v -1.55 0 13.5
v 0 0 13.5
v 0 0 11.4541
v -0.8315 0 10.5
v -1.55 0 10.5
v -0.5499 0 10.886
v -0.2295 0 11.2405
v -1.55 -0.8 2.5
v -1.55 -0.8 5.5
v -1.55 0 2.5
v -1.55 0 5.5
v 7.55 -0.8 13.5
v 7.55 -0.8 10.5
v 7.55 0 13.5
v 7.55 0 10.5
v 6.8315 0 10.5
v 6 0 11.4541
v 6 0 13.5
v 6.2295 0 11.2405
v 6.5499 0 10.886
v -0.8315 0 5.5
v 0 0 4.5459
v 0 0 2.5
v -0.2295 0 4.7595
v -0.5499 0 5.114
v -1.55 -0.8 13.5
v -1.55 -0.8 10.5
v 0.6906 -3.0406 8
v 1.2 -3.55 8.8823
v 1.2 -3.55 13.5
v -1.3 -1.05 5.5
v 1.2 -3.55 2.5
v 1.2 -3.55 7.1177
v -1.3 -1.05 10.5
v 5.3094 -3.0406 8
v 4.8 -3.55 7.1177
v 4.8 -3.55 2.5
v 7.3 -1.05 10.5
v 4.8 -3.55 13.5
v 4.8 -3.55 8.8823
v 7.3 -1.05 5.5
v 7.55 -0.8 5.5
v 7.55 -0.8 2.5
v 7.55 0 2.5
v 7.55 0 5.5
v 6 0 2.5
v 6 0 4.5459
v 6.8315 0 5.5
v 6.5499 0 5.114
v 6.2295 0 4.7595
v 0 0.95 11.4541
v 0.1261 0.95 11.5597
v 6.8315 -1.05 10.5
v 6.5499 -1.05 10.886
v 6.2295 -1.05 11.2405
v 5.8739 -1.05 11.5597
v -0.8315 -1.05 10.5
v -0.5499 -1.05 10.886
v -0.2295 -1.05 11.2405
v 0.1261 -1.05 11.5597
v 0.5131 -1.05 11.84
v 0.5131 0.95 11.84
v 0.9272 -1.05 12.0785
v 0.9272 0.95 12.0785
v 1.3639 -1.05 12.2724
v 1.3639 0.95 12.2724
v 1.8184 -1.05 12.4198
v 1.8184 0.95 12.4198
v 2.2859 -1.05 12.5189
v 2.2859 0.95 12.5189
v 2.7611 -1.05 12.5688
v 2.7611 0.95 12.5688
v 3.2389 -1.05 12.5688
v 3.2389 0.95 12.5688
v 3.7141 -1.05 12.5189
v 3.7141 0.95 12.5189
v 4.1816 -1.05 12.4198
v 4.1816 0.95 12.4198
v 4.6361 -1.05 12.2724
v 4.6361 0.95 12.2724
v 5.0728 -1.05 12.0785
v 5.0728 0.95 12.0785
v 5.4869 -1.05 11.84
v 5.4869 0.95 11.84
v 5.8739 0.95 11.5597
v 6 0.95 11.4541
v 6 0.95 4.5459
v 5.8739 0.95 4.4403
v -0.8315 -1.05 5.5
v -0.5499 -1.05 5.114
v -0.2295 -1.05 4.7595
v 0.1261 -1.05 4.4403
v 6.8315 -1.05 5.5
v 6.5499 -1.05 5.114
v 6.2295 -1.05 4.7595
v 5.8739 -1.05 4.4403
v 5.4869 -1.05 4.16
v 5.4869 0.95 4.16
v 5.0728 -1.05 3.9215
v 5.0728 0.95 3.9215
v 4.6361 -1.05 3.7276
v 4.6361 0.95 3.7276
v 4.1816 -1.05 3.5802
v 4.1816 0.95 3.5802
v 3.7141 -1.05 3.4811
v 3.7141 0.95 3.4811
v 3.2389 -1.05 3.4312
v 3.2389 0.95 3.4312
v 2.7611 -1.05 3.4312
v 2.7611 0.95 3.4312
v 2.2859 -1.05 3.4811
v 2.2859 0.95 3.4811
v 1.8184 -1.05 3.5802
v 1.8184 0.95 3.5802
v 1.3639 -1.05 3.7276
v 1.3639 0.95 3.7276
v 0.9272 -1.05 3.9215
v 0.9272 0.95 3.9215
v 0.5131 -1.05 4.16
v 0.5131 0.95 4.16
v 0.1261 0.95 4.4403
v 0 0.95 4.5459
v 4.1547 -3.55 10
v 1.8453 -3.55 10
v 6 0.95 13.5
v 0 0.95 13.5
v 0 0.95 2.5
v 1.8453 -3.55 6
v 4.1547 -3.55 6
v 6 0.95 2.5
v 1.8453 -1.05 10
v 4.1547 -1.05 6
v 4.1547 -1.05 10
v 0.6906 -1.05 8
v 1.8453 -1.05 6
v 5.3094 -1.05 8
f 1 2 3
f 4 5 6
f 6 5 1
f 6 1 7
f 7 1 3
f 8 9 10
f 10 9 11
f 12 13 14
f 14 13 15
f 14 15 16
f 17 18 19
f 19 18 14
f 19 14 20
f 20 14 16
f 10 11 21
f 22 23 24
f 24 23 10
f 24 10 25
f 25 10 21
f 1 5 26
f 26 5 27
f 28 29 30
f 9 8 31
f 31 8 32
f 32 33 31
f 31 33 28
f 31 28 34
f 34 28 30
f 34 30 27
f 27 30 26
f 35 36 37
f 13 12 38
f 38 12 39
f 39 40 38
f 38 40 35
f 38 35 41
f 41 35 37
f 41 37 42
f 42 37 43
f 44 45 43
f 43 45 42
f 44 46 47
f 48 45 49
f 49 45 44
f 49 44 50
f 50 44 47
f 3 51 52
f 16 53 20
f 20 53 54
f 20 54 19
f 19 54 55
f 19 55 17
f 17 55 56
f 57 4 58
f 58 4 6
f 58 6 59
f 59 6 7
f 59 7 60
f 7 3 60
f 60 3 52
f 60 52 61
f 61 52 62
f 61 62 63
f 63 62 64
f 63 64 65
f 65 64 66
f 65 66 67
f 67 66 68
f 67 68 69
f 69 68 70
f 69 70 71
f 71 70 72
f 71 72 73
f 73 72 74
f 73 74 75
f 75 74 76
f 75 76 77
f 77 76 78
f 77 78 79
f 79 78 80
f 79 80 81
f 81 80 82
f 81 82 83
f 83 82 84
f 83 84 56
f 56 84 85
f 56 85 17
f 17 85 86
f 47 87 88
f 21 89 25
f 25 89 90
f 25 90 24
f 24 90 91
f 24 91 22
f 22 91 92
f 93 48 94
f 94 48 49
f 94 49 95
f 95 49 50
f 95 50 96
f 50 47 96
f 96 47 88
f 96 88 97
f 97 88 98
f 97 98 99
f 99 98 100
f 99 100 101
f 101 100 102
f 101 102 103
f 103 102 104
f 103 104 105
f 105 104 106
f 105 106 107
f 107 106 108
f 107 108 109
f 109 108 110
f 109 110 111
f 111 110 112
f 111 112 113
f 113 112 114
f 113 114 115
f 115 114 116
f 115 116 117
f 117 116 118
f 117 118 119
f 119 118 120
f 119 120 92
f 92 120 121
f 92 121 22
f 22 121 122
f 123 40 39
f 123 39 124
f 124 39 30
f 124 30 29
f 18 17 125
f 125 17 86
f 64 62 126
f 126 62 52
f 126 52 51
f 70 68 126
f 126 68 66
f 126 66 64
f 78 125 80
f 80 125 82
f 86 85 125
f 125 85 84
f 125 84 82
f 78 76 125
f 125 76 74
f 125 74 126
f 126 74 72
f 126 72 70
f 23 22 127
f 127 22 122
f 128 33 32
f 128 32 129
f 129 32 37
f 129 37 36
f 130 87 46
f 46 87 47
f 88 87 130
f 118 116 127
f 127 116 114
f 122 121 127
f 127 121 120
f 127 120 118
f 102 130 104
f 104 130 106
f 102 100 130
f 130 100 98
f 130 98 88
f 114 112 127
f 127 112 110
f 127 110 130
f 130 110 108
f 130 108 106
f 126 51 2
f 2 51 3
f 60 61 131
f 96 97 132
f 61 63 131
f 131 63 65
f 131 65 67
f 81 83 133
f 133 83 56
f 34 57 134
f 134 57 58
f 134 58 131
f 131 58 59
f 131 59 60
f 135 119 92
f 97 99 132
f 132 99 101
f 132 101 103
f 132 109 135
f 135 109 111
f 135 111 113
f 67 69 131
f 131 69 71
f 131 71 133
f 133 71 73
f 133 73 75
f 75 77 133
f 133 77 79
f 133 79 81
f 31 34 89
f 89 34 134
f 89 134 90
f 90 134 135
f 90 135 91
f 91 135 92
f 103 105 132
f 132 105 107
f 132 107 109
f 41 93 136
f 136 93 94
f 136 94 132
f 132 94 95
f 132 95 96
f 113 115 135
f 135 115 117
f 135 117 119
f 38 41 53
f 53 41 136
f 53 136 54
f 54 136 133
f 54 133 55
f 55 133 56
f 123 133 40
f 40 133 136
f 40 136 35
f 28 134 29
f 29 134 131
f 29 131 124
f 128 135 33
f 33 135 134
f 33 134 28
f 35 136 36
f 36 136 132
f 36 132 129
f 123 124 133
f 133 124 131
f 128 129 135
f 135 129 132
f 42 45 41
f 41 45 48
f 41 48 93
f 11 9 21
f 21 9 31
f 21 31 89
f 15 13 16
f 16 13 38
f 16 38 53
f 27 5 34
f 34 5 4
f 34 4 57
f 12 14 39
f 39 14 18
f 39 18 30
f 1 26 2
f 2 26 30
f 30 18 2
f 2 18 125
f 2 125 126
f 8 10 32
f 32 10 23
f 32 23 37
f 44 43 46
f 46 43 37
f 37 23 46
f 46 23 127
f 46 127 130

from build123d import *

# Parameters (mm, degrees)
BOSS_EXTRUDE1_DEPTH = 16
SKETCH2_R           = 4.575
CUT_EXTRUDE1_DEPTH  = 2
CUT_EXTRUDE2_DEPTH  = 18.867638344
SKETCH5_W           = 9.1
SKETCH5_H           = 5
CUT_EXTRUDE4_DEPTH  = 18.867638344
SKETCH6_W           = 9.1
SKETCH6_H           = 2.5
CUT_EXTRUDE5_DEPTH  = 19.255204737


with BuildPart() as part:
    # Sketch1 → Boss-Extrude1 (new body)
    with BuildSketch(Plane.XY):
        Polygon((0, 0), (0, 0.95), (6, 0.95), (6, 0), (7.55, 0), (7.55, -0.8), (4.8, -3.55), (1.2, -3.55), (-1.55, -0.8), (-1.55, 0), align=None)
    extrude(amount=BOSS_EXTRUDE1_DEPTH)

    # Sketch2 → Cut-Extrude1 (cut)
    with BuildSketch(Plane(origin=(0, 0.95, 0), x_dir=(1, 0, 0), z_dir=(0, 1, 0))):
        with Locations((3, -8)):
            Circle(SKETCH2_R)
    extrude(amount=-CUT_EXTRUDE1_DEPTH, mode=Mode.SUBTRACT)

    # Sketch3 → Cut-Extrude2 (cut, through all)
    with BuildSketch(Plane(origin=(0, -1.05, 0), x_dir=(1, 0, 0), z_dir=(0, 1, 0))):
        Polygon((5.309401077, -8), (4.154700538, -6), (1.845299462, -6), (0.690598923, -8), (1.845299462, -10), (4.154700538, -10), align=None)
    extrude(amount=-CUT_EXTRUDE2_DEPTH, mode=Mode.SUBTRACT)

    # Sketch5 → Cut-Extrude4 (cut, through all)
    with BuildSketch(Plane(origin=(0, -1.05, 0), x_dir=(1, 0, 0), z_dir=(0, 1, 0))):
        with Locations((3, -8)):
            Rectangle(SKETCH5_W, SKETCH5_H)
    extrude(amount=CUT_EXTRUDE4_DEPTH, mode=Mode.SUBTRACT)

    # Sketch6 → Cut-Extrude5 (cut, through all)
    with BuildSketch(Plane(origin=(0, 0.95, 0), x_dir=(1, 0, 0), z_dir=(0, 1, 0))):
        with Locations((3, -1.25)):
            Rectangle(SKETCH6_W, SKETCH6_H)
        with Locations((3, -14.75)):
            Rectangle(SKETCH6_W, SKETCH6_H)
    extrude(amount=-CUT_EXTRUDE5_DEPTH, mode=Mode.SUBTRACT)


solid = part.part
